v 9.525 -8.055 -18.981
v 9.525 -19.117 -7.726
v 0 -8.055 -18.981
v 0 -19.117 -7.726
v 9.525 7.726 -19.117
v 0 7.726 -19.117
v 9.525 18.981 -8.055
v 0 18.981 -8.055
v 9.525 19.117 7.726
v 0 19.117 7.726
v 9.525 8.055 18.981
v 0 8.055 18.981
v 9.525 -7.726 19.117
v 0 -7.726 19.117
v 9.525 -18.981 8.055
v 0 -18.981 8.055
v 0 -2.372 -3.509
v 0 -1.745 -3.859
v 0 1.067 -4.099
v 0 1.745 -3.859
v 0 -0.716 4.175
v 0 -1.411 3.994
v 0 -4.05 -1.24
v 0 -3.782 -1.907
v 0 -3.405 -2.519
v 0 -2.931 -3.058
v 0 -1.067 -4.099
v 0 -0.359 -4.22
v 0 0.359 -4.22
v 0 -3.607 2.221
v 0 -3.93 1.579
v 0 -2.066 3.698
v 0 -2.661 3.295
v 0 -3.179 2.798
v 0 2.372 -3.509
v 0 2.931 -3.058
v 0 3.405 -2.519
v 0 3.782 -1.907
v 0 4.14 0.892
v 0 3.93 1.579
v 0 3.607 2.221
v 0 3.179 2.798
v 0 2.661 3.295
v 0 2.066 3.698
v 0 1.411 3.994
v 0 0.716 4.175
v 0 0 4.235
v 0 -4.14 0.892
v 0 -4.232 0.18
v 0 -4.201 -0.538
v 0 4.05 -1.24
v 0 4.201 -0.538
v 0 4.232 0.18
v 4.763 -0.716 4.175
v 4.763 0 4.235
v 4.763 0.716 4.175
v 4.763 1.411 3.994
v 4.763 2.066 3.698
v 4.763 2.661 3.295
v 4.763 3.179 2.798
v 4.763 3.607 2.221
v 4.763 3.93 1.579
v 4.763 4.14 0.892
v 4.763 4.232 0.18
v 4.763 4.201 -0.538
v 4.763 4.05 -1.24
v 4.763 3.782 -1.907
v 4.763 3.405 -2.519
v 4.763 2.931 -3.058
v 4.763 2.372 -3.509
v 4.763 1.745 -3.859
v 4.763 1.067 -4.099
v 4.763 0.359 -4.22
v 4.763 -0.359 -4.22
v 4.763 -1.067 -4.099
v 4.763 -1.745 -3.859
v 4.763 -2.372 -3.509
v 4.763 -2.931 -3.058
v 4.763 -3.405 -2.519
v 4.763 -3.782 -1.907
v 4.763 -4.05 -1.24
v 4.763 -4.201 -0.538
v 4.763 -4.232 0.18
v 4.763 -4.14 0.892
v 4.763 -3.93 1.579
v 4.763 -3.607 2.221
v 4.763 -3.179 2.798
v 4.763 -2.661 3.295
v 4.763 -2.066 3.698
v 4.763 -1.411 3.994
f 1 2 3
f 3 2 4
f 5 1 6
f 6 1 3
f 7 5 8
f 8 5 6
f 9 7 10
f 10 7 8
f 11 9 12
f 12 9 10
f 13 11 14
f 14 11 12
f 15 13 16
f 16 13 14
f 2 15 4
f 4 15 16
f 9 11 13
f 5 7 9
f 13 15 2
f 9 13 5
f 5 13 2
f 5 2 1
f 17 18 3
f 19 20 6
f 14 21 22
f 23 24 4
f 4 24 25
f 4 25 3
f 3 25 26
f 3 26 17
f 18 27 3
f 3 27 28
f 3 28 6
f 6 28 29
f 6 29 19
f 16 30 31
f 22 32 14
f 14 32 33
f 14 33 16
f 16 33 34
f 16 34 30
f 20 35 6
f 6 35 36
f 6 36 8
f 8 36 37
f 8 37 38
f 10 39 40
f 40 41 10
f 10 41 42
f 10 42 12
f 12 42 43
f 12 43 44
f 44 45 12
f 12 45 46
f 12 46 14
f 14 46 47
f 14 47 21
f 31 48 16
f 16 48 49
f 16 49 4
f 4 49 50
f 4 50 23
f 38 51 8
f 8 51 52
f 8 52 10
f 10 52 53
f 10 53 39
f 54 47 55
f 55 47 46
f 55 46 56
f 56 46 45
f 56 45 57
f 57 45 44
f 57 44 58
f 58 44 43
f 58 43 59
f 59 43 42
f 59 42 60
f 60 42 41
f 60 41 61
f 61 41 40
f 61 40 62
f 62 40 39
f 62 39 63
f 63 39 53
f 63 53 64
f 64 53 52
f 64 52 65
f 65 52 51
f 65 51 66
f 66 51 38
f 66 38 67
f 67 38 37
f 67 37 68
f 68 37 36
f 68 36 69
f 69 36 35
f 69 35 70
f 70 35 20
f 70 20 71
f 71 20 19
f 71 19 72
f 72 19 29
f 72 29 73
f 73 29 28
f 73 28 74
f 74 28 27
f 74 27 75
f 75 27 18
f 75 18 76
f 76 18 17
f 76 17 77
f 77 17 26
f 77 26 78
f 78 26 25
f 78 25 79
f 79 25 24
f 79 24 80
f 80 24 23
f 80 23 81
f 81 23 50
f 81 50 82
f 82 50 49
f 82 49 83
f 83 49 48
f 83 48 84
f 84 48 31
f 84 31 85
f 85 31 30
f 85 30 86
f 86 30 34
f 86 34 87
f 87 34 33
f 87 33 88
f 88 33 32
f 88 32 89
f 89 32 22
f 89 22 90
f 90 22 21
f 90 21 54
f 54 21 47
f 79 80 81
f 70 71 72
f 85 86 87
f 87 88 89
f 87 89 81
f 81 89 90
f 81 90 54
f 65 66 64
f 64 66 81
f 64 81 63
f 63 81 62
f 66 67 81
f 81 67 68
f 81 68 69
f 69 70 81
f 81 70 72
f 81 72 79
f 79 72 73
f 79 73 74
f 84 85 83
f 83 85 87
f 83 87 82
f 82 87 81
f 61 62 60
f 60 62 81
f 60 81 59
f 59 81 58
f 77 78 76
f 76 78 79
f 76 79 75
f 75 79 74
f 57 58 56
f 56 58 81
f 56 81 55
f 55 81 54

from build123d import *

# Parameters (mm, degrees)
BOSS_EXTRUDE1_DEPTH = 9.525
SKETCH2_R           = 4.23545
CUT_EXTRUDE1_DEPTH  = 4.7625


with BuildPart() as part:
    # Sketch1 → Boss-Extrude1 (new body)
    with BuildSketch(Plane(origin=(0, 0, 0), x_dir=(0, 0, -1), z_dir=(1, 0, 0))):
        Polygon((18.981321463, -8.05457391), (19.117264954, 7.726377291), (8.05457391, 18.981321463), (-7.726377291, 19.117264954), (-18.981321463, 8.05457391), (-19.117264954, -7.726377291), (-8.05457391, -18.981321463), (7.726377291, -19.117264954), align=None)
    extrude(amount=BOSS_EXTRUDE1_DEPTH)

    # Sketch2 → Cut-Extrude1 (cut)
    with BuildSketch(Plane.ZY):
        Circle(SKETCH2_R)
    extrude(amount=-CUT_EXTRUDE1_DEPTH, mode=Mode.SUBTRACT)


solid = part.part
